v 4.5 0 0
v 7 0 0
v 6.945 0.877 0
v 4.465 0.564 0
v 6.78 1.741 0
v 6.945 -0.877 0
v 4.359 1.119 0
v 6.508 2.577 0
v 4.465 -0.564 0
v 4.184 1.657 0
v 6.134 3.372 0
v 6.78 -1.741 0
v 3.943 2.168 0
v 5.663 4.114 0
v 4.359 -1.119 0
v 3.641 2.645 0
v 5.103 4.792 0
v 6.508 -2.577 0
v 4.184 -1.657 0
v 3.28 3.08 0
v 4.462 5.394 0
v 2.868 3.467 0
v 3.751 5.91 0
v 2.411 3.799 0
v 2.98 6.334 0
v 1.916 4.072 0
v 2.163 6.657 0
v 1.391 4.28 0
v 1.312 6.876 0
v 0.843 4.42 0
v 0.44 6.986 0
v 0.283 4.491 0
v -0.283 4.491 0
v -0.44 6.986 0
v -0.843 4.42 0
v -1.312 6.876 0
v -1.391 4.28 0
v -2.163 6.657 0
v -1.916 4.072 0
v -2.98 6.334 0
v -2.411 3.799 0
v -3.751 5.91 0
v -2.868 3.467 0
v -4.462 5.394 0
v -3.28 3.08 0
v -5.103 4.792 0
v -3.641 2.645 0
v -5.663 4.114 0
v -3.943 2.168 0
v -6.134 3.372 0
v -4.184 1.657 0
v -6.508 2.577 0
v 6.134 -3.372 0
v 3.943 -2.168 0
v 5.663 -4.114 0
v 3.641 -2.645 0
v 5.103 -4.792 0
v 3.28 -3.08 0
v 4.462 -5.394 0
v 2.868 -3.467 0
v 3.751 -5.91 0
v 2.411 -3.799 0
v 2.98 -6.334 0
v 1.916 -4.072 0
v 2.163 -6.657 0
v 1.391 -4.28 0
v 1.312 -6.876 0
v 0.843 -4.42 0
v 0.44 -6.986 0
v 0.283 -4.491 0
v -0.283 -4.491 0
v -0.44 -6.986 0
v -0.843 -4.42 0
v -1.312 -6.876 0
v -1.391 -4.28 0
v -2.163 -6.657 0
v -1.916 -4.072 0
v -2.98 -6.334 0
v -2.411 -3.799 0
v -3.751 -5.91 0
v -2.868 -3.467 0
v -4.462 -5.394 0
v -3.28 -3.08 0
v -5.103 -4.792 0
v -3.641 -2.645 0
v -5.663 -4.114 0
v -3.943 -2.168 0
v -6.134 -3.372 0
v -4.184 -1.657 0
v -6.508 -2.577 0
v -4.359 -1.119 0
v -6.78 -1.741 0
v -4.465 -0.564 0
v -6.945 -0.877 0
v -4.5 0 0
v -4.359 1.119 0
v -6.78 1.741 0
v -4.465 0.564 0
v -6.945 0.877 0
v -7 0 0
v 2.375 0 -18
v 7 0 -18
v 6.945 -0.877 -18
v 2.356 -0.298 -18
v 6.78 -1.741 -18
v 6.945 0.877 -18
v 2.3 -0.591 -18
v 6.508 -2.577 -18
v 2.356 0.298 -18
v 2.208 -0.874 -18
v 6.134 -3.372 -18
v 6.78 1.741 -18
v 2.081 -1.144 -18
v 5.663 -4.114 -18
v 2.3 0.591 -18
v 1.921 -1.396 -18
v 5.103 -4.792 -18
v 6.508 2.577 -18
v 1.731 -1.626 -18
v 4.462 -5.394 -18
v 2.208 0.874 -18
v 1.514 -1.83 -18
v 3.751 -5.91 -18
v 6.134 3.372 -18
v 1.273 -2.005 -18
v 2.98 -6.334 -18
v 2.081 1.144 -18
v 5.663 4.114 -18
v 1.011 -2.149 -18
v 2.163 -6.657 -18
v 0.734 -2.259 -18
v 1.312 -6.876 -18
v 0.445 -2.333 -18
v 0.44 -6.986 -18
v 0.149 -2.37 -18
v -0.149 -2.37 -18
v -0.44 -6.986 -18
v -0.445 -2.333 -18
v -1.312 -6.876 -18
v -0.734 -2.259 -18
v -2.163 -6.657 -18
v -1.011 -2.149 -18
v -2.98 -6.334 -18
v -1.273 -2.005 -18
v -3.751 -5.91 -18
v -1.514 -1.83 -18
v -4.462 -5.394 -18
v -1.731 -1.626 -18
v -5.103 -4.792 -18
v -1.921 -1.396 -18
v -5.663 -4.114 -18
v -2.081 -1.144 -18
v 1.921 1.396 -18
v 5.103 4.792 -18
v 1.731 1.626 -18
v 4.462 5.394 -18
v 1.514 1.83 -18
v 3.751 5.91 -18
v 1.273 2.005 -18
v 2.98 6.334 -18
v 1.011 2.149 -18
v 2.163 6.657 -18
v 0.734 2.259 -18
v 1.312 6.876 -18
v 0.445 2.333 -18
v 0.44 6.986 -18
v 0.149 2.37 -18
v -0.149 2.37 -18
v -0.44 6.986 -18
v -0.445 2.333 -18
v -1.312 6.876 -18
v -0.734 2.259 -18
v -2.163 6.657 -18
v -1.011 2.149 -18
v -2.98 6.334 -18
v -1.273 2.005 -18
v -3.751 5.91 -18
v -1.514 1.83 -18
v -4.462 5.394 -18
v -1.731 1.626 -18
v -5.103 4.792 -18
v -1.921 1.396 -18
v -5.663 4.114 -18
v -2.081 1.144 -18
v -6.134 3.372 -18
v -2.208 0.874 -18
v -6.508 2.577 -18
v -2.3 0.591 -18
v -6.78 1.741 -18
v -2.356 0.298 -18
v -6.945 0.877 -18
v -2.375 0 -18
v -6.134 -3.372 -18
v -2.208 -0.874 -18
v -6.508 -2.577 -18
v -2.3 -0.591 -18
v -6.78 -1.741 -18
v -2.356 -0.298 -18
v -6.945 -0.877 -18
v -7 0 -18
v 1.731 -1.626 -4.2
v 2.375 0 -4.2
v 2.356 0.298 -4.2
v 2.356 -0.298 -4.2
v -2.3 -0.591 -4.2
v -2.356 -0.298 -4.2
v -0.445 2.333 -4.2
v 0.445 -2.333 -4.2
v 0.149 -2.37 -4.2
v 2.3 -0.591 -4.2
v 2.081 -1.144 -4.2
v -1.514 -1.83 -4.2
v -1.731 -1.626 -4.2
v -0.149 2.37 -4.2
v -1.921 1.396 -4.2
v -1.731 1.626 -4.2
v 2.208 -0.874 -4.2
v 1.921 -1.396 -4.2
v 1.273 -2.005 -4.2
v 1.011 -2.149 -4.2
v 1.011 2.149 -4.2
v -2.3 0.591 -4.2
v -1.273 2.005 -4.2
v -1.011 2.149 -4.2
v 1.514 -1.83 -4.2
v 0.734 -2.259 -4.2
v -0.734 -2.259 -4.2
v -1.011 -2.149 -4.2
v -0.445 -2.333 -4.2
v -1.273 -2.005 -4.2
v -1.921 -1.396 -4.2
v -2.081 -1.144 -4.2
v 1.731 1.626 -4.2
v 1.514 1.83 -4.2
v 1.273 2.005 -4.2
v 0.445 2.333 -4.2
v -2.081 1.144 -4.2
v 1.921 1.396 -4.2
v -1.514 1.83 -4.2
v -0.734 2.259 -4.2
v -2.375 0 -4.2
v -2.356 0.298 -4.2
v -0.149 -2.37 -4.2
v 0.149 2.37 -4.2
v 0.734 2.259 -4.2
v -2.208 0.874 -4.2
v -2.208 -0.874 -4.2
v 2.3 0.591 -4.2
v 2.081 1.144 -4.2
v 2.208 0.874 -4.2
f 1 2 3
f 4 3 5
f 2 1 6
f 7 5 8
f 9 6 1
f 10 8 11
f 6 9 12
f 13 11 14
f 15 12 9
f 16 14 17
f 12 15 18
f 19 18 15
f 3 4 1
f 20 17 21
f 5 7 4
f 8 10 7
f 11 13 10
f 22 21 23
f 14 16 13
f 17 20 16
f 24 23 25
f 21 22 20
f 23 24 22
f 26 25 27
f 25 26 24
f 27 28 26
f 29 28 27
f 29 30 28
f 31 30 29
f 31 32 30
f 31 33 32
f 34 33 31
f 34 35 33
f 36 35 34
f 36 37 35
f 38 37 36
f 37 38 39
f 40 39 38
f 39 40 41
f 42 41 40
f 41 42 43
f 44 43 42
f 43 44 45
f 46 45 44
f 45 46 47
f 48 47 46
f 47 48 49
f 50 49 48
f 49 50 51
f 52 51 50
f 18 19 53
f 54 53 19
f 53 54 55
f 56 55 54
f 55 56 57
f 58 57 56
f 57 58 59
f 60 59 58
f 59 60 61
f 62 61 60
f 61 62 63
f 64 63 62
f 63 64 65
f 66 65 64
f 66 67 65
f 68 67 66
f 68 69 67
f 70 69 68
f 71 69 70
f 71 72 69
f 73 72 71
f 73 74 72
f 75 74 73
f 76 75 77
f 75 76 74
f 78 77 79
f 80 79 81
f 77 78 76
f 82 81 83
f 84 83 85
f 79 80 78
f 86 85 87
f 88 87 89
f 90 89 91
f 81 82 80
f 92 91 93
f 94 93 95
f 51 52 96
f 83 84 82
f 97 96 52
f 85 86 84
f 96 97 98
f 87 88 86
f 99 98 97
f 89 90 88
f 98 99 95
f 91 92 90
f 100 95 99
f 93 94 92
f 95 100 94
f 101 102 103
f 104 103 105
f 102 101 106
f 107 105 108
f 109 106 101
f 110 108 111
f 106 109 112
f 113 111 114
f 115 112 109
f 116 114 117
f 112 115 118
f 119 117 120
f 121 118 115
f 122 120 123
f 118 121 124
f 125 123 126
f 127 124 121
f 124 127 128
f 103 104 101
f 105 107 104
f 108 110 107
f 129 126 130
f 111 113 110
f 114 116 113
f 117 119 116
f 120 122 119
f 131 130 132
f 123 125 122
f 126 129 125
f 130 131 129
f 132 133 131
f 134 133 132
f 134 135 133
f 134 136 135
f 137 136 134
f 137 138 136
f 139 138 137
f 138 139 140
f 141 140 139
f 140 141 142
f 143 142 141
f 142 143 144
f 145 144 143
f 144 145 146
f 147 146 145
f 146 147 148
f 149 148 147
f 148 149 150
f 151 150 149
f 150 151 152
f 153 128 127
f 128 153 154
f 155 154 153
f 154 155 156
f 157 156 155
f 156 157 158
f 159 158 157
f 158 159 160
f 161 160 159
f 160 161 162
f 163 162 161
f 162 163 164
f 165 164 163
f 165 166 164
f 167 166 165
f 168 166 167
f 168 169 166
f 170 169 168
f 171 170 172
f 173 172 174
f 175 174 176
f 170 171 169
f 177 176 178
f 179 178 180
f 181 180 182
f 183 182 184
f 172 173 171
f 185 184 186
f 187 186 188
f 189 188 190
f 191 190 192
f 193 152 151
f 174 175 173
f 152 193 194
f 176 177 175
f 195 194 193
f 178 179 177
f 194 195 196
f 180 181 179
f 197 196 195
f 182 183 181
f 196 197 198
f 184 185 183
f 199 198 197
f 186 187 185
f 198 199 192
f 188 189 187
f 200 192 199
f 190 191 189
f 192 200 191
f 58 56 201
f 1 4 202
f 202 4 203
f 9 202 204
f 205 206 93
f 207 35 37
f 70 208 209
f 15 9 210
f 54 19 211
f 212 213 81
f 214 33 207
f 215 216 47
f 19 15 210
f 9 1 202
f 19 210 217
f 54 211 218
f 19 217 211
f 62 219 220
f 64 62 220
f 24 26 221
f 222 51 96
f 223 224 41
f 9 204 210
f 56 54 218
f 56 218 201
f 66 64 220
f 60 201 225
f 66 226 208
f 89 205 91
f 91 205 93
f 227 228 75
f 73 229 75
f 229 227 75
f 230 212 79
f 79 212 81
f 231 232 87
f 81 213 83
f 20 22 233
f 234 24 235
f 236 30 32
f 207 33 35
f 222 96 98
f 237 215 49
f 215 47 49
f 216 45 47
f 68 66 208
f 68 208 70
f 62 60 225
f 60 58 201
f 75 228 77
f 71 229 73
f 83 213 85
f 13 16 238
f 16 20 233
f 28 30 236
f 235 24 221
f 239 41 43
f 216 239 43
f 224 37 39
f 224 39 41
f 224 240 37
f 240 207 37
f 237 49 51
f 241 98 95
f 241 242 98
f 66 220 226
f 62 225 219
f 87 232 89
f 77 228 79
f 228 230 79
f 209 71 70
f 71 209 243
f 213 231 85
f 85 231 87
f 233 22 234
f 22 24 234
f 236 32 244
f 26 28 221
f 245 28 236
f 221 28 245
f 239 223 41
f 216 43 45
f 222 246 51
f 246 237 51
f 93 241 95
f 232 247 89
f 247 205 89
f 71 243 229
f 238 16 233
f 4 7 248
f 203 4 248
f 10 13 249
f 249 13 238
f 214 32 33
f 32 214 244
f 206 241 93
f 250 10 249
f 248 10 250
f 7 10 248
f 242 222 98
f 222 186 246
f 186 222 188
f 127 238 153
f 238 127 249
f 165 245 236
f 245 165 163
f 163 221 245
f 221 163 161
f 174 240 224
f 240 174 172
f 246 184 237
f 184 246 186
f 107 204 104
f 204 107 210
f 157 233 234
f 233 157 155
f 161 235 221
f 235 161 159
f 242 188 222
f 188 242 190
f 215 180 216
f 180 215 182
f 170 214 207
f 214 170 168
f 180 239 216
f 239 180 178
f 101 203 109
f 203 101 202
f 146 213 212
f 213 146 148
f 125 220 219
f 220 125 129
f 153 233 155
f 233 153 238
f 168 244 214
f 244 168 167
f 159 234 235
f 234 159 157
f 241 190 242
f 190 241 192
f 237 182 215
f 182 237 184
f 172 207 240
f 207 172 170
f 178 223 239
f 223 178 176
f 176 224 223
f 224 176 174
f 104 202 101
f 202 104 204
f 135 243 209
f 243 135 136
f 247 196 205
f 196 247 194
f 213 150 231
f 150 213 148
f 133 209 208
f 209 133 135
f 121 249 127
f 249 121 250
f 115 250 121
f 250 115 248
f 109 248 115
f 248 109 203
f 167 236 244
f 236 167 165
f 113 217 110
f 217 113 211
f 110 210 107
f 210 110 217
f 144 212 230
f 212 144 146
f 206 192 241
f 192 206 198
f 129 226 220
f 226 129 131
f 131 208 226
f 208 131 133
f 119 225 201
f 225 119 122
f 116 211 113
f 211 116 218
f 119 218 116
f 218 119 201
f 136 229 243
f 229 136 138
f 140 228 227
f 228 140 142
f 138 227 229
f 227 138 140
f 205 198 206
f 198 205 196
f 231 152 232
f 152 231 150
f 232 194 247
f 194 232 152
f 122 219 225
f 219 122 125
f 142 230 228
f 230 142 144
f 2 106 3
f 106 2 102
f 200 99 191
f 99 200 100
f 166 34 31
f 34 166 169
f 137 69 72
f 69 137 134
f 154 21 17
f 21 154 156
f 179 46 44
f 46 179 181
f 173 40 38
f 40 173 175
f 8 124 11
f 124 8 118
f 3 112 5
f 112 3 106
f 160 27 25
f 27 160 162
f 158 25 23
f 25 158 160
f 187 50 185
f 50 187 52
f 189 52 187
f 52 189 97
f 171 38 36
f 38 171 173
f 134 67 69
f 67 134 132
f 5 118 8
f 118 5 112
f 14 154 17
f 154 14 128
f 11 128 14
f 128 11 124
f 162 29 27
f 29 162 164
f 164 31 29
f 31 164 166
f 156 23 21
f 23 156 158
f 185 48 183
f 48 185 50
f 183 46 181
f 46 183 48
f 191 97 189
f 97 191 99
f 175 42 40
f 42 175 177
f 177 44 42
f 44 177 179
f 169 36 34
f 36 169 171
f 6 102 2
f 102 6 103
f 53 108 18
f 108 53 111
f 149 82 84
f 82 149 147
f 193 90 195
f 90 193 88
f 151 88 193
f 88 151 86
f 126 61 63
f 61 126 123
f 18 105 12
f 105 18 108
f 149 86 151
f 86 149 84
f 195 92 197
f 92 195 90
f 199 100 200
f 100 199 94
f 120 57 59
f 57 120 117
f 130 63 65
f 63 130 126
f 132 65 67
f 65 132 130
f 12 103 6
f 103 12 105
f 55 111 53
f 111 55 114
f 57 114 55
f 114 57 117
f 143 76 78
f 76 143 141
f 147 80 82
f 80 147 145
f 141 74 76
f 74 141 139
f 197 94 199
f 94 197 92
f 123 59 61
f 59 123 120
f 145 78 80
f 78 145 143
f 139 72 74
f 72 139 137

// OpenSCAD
$fn = 50;


difference() {
	union() {
		translate(v = [0, 0, -18.0000000000]) {
			cylinder(h = 18, r = 7.0000000000);
		}
		cylinder(h = 0, r = 16.0000000000);
	}
	union() {
		translate(v = [0, 0, 0]) {
			rotate(a = [0, 0, 0]) {
				difference() {
					union() {
						#translate(v = [0, 0, -18.0000000000]) {
							cylinder(h = 18, r = 2.2500000000);
						}
						#translate(v = [0, 0, -4.2000000000]) {
							cylinder(h = 4.2000000000, r1 = 2.3750000000, r2 = 4.5000000000);
						}
						#translate(v = [0, 0, -18.0000000000]) {
							cylinder(h = 18, r = 2.3750000000);
						}
						#translate(v = [0, 0, -18.0000000000]) {
							cylinder(h = 18, r = 2.2500000000);
						}
					}
					union();
				}
			}
		}
	}
}
